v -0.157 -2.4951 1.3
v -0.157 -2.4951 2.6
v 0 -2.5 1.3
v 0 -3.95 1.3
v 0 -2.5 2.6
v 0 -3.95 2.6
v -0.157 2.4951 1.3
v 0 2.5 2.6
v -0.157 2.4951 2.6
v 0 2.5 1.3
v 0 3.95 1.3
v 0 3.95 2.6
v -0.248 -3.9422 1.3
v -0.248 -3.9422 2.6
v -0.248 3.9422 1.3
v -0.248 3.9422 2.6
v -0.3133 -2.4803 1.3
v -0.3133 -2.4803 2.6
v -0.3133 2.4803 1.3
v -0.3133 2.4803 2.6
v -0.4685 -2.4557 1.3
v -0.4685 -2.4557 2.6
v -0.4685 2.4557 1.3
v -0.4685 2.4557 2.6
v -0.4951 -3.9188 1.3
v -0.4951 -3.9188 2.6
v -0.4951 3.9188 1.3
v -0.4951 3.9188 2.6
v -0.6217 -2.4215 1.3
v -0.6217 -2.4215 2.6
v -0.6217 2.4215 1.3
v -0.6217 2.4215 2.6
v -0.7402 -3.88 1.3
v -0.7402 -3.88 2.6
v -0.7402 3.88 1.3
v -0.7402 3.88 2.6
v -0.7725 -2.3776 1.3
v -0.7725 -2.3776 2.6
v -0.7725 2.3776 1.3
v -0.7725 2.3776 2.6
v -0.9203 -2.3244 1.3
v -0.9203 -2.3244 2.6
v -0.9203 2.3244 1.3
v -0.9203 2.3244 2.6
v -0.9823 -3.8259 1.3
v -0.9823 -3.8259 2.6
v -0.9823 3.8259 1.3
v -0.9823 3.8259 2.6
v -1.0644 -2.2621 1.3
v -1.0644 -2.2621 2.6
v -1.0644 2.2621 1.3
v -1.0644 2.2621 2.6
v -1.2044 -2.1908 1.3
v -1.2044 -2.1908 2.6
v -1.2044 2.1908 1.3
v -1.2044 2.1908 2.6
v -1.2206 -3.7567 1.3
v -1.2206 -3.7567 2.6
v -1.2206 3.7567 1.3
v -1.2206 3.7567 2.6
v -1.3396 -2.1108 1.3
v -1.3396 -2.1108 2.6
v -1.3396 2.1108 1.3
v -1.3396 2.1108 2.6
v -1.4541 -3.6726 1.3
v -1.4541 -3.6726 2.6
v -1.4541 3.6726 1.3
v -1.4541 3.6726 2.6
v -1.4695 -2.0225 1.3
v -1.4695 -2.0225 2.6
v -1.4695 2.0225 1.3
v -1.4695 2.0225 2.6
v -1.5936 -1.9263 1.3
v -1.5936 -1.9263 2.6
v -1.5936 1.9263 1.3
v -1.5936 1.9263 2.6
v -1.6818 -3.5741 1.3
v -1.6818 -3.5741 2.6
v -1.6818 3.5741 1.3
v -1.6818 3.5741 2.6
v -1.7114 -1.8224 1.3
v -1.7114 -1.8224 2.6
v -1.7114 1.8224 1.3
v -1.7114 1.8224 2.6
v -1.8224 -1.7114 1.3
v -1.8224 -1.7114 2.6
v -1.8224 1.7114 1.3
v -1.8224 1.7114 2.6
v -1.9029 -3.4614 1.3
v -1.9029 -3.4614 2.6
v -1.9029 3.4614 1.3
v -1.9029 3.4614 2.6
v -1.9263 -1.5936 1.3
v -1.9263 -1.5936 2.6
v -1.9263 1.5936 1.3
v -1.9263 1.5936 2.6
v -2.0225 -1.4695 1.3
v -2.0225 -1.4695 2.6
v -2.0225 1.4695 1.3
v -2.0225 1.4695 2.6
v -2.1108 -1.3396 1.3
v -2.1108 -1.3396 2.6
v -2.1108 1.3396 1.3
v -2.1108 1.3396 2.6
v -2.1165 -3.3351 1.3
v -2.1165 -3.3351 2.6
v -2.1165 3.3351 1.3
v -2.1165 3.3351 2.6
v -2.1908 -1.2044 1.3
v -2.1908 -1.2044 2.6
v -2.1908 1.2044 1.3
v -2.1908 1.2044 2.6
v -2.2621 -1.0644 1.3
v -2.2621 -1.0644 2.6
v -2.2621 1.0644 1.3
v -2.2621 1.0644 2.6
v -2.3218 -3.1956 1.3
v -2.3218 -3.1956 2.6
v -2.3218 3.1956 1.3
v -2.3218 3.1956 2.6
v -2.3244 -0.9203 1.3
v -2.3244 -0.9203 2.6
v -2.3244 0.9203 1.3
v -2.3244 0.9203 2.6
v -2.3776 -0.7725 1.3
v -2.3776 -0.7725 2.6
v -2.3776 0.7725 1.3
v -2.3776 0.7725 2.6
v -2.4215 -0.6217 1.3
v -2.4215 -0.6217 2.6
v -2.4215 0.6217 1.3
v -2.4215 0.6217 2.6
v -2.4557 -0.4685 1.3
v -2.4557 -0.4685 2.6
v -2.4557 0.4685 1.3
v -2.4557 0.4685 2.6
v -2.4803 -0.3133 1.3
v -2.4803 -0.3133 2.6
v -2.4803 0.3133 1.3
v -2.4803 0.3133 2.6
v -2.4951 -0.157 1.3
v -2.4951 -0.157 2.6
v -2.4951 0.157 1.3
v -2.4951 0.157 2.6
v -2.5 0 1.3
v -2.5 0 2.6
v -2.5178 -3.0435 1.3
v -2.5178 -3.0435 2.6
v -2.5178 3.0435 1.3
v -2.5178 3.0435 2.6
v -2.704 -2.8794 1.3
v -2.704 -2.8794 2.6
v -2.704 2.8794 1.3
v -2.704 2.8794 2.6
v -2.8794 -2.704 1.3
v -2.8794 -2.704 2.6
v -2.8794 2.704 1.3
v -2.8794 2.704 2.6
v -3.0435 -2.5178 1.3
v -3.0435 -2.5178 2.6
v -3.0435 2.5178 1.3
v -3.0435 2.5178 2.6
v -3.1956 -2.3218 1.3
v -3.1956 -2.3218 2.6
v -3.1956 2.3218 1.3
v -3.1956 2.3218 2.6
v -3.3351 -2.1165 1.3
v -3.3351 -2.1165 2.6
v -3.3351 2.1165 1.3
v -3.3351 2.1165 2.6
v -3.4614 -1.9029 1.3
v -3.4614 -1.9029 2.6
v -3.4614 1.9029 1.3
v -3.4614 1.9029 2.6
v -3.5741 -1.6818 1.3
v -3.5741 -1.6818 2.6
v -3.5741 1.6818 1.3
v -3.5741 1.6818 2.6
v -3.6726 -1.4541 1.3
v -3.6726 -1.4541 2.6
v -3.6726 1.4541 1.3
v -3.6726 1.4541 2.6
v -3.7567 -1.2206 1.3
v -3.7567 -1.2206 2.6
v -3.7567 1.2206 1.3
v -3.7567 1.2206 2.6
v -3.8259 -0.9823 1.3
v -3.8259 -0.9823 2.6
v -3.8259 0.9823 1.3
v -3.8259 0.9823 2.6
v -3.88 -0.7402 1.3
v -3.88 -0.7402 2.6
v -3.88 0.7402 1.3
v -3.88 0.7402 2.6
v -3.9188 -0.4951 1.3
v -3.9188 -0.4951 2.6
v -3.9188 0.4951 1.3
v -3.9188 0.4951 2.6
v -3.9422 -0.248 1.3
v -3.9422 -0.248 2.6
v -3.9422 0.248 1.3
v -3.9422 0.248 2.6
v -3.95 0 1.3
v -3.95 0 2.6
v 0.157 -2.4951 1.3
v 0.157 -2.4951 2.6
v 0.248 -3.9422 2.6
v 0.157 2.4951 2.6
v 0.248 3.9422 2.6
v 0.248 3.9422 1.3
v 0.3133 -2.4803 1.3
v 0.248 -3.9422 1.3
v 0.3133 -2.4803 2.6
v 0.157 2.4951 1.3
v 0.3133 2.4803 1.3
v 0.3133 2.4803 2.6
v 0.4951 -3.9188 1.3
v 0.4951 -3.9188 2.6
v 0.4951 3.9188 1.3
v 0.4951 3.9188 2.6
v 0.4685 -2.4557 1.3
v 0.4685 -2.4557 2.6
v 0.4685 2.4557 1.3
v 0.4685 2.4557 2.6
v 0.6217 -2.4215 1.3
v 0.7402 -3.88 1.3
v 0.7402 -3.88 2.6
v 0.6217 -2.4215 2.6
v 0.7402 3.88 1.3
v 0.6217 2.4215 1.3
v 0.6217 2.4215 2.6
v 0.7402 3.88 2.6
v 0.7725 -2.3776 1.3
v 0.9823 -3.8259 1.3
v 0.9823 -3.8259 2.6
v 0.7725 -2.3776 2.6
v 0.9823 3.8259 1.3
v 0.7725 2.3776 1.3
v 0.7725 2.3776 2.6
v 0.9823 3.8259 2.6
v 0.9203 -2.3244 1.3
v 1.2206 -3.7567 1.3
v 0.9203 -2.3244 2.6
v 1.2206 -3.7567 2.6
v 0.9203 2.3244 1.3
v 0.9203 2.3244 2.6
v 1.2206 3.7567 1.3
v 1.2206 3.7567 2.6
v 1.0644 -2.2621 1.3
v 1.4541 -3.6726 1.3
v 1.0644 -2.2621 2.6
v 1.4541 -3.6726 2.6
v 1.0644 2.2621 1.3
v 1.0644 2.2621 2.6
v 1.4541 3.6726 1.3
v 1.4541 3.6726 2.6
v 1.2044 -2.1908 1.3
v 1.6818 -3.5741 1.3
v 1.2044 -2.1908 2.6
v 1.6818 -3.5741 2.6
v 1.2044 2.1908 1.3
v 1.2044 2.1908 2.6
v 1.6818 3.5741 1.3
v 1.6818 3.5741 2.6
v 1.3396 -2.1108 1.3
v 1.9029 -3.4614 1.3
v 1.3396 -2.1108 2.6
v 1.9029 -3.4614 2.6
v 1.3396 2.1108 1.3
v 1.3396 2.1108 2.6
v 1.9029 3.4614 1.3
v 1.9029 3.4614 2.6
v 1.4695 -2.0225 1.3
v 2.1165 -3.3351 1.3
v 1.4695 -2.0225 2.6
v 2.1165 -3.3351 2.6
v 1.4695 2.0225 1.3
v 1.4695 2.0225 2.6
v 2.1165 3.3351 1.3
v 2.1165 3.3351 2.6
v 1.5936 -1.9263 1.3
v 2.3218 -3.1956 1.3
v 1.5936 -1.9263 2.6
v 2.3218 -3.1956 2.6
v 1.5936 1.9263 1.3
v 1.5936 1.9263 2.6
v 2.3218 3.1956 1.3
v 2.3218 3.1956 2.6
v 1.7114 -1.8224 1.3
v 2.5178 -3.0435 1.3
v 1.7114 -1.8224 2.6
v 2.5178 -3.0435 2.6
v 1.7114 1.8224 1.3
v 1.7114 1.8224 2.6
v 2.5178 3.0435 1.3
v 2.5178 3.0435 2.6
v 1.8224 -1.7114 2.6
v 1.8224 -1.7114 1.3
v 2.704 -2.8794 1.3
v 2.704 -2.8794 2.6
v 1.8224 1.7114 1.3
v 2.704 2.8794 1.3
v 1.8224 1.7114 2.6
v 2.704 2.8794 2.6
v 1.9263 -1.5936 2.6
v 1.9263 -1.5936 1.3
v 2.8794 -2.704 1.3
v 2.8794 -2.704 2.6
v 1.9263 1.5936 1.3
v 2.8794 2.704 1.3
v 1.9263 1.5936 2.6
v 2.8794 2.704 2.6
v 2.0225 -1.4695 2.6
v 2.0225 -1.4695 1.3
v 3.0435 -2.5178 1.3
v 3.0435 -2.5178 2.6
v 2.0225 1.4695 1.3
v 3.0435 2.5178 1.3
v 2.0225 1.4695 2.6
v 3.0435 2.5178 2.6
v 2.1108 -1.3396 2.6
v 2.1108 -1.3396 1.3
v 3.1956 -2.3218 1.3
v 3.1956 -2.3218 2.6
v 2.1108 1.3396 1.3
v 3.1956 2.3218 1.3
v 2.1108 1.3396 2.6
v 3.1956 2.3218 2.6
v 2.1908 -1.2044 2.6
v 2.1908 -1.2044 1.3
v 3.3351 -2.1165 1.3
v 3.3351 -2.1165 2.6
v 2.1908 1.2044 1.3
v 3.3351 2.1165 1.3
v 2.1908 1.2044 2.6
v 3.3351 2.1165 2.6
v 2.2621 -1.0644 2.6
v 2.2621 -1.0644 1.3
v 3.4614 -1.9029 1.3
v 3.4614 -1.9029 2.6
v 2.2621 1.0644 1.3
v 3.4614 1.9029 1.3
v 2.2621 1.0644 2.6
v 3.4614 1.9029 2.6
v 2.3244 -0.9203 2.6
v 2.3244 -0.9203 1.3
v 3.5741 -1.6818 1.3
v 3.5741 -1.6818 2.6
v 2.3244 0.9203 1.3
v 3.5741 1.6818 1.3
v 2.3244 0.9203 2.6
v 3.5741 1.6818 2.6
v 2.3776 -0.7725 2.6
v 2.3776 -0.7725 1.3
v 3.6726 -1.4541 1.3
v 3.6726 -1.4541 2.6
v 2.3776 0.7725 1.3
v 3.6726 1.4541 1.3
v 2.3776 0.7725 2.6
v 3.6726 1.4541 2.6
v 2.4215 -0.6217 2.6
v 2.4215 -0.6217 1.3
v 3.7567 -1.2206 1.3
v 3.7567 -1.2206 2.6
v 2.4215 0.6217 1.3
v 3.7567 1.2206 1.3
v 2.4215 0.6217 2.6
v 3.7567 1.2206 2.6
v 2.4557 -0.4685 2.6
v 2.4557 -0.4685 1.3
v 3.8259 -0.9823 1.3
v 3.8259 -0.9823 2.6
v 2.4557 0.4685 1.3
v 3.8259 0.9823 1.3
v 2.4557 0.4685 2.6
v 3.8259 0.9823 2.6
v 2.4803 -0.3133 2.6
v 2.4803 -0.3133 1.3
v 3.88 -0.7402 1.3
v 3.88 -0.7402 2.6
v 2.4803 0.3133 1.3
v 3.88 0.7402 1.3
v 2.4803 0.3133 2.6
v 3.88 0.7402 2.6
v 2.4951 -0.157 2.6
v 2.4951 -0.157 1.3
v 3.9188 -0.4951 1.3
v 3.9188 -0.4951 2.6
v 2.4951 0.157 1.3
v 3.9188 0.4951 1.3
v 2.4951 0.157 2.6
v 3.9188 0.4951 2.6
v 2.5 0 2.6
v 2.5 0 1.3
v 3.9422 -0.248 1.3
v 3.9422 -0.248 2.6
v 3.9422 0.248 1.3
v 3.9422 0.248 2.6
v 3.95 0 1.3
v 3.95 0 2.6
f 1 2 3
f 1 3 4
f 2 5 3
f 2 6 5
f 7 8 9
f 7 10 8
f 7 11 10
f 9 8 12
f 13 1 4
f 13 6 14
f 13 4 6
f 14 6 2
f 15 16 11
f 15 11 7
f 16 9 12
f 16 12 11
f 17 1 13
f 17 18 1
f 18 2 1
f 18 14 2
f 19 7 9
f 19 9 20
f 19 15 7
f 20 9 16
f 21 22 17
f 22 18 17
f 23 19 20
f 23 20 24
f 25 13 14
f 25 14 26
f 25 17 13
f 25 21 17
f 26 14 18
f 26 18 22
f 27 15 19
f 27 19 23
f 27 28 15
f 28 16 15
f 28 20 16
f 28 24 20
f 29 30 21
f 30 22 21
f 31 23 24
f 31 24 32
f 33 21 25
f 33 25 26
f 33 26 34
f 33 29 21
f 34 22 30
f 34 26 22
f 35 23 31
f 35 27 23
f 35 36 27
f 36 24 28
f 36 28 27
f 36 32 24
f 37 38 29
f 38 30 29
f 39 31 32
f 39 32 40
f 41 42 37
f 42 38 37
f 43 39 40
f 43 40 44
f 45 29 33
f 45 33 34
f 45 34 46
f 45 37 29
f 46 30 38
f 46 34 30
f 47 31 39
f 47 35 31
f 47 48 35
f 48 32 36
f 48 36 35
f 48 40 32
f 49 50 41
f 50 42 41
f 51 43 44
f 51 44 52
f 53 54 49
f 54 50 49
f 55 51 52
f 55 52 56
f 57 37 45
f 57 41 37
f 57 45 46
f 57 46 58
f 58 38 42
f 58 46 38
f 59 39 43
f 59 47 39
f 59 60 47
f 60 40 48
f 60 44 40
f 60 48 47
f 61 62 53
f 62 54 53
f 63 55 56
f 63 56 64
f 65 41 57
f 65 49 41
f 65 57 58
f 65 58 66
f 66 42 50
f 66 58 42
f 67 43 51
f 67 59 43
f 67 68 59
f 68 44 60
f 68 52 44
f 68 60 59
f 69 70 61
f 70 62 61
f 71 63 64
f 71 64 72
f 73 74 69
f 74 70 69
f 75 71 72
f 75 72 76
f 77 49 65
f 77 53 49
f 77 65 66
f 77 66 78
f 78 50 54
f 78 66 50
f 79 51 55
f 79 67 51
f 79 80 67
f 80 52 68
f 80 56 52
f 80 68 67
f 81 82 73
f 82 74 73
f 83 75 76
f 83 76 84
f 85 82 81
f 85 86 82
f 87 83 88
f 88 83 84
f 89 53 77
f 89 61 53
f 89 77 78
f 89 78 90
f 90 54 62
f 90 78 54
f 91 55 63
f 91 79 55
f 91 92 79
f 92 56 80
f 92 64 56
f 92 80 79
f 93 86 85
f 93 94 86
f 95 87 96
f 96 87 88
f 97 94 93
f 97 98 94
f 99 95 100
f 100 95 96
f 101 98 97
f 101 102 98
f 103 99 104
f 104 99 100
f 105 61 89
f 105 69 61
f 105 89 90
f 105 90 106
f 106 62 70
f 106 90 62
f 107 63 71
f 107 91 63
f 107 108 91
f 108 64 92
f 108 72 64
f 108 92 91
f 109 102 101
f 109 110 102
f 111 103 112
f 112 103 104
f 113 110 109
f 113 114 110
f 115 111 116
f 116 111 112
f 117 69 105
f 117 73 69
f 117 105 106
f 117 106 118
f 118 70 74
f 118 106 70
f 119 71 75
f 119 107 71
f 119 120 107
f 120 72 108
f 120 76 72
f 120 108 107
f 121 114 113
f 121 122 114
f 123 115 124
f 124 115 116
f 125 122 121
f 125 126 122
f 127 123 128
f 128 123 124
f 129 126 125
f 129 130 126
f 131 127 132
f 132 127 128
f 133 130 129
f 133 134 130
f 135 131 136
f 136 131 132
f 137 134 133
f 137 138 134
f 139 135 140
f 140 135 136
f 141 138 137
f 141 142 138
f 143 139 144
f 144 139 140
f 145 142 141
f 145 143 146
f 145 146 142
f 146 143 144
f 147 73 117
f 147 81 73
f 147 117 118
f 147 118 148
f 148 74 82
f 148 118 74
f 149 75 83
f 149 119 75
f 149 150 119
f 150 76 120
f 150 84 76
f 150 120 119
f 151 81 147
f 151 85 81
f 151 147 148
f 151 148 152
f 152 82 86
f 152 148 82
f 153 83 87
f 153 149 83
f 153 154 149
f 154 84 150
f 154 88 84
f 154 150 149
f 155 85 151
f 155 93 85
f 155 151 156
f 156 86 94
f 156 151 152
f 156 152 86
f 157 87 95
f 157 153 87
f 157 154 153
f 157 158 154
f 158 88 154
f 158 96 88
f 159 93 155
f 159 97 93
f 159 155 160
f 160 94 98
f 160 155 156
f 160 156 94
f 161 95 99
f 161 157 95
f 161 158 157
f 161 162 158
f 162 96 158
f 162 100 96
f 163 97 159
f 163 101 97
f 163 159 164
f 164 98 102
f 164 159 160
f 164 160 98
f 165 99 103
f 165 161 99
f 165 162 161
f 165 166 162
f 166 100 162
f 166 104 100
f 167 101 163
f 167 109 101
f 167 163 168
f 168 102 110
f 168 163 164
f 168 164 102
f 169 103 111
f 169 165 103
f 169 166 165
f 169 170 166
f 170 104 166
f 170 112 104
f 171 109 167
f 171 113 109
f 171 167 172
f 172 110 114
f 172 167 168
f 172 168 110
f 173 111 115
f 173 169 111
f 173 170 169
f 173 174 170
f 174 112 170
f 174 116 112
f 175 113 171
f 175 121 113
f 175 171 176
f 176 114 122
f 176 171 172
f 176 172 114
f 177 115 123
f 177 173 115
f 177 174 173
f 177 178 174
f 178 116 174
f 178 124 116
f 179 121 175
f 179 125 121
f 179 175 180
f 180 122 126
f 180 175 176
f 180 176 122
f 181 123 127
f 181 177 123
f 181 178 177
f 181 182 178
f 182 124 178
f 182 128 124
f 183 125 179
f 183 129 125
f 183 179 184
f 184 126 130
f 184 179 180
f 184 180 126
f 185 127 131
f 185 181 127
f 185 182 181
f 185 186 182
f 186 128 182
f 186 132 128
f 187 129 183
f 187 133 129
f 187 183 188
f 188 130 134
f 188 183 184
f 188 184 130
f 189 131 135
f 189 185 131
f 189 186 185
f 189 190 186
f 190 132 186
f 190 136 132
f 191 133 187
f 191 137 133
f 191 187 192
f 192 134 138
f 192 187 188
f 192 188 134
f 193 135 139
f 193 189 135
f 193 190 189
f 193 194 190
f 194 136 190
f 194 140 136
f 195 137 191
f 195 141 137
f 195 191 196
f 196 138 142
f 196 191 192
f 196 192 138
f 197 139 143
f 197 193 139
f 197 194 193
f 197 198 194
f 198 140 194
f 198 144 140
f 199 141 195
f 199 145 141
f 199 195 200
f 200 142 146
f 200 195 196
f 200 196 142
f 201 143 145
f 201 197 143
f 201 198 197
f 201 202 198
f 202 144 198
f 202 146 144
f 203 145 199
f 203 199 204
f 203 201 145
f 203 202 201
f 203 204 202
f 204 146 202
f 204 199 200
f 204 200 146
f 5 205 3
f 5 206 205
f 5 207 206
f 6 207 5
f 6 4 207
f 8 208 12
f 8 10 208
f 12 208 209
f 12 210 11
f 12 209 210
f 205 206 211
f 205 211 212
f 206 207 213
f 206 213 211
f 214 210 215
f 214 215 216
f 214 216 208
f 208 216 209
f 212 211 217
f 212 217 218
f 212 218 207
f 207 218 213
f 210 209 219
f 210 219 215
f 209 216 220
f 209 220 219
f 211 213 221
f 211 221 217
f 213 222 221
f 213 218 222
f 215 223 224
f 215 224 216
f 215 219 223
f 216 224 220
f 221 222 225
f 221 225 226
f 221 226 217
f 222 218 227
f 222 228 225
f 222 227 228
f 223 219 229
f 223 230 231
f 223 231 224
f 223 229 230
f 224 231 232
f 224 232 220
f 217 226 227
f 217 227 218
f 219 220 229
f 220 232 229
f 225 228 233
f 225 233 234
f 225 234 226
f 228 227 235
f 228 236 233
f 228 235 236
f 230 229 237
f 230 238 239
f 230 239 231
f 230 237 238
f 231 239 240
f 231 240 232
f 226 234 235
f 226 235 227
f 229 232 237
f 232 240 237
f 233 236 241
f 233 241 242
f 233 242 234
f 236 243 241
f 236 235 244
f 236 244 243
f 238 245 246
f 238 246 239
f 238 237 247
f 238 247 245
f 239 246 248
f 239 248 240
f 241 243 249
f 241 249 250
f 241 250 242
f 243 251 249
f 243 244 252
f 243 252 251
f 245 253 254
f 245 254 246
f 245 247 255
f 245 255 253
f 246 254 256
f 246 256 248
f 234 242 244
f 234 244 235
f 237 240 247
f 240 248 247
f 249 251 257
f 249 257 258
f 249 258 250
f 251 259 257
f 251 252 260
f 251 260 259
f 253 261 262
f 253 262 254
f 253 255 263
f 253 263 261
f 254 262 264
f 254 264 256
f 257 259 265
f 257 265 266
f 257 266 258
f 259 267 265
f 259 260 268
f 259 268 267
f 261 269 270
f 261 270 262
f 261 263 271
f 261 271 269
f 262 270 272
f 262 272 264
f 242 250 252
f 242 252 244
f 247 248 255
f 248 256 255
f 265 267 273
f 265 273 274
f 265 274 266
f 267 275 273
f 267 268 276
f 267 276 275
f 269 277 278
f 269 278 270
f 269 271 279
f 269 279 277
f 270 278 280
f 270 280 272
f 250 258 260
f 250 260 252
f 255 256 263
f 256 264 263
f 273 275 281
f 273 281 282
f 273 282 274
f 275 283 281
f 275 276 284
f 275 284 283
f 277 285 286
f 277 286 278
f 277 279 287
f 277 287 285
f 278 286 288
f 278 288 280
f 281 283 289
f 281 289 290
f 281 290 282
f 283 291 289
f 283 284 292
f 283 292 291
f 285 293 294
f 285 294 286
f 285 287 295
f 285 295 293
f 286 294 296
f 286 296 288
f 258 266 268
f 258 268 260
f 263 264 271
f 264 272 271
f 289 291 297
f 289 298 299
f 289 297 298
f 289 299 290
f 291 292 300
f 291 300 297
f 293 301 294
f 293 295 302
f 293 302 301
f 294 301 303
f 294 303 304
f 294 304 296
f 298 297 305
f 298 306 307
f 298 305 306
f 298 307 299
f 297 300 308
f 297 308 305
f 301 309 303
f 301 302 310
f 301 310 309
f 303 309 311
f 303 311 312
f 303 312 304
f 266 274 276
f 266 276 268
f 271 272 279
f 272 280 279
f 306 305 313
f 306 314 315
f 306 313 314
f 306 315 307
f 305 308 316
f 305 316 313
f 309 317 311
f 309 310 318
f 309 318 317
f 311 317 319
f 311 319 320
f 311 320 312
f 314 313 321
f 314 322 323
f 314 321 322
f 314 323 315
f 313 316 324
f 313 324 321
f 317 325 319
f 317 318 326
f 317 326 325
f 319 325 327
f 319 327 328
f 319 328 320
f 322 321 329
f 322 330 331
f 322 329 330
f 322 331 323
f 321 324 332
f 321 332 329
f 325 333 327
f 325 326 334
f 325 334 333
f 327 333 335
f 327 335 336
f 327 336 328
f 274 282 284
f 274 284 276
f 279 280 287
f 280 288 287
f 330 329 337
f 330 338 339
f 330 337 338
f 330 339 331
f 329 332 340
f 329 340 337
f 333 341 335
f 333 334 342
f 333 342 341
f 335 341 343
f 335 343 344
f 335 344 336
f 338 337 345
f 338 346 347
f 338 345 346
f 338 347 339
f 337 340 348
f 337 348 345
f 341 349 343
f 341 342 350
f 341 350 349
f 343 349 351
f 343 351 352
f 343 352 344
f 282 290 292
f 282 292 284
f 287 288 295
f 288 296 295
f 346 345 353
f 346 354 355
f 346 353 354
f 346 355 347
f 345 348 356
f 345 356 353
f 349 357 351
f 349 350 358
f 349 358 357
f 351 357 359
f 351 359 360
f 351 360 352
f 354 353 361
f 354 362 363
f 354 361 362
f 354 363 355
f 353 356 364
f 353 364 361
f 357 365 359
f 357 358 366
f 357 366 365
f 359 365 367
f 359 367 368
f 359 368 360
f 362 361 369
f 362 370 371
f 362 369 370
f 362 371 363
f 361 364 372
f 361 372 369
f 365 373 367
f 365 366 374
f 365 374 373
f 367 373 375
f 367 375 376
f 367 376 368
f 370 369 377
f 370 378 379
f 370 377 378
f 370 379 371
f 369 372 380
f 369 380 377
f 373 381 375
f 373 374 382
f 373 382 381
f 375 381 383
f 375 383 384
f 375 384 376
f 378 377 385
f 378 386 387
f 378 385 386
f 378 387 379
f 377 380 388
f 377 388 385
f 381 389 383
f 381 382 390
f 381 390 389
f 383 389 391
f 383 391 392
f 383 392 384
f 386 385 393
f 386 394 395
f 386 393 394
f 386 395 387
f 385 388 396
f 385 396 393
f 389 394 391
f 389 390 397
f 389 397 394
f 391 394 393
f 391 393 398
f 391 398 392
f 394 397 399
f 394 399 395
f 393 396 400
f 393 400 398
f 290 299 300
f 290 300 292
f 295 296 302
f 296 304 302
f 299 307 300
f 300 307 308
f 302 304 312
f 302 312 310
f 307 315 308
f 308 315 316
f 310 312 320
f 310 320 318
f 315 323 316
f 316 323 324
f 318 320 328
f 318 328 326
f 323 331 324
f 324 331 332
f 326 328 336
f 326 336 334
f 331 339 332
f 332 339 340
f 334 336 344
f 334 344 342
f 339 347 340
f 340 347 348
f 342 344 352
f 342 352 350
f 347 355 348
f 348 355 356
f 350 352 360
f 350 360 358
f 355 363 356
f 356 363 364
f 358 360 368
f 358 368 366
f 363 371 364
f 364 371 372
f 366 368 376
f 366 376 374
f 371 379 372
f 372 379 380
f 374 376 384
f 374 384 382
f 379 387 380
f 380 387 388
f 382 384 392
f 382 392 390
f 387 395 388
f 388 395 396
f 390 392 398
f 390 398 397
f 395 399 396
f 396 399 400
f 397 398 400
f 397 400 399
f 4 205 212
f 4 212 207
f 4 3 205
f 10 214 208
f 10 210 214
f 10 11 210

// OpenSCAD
// file: ../src/WINDGAUGE02A_R04.scad
$fn=40; // model faces resolution.
include <../configuration.scad>

//podložka u ložiska - nahrazena kovovou
module WINDGAUGE02A_R04 ()
    {
    difference()
        {
        union()
            {
            translate([0,0,0])
                cylinder (h = S01_sila_materialu, r=(lozisko_prumer_vnitrni+2*lozisko_prekryv)/2, center = true, $fn=100); 
            }    
   
        translate([0,0,1/2*S01_sila_materialu-(lozisko_vyska)/2])             
            cylinder (h = 2*S01_sila_materialu+lozisko_vyska+0.1, r=((prumer_osicky)/2), center = true, $fn=100);   
        }
    }
 
 WINDGAUGE02A_R04 ();
// file: ../configuration.scad
$fn=40; // model faces resolution.

//OBECNE PARAMETRY 
//----------------------------------------------------------------
//----------------------------------------------------------------
//WINDGAUGE02A_S02 - Parametry pro hlavni valec anemometru
S01_hloubka_zavitu=4;
S01_vyska=80;
S01_prumer_vnitrni=40;
S01_sila_materialu=1.3;
S01_vyska_horni_zavit=10;
S01_vyska_spodniho_zavitu=10;
S01_sila_drzaku_RJ11=3; //vyška drážky
S01_hrana_A_RJ11=12.3;
S01_hrana_B_RJ11=19;
S01_tolerance_zavit=1.5;

//Obecné parametry
prumer_osicky=5;
sterbina_na_osicku=0.5; //aby nepraskal a držel držák rotoru na hřídelce

//Rozmery modulu se senzorem
senzor_delka=20.32;
senzor_sirka=10.16;
senzor_vyska_IO=2;
senzor_odstup_od_magnetu=2;

//Parametry loziska
lozisko_prumer_vnitrni=4.9;
lozisko_prumer_vnejsi=16.1;
lozisko_vyska=5;
lozisko_prekryv=1.5;

//Parametry magnetu
magnet_prumer=6.3;
magnet_vyska=5;
magnet_zapusteni=4;
magnet_tolerance_prumeru=0.2;

R03_vyska_narezeni_hridelky=5;

//Parametry sroubu
prumer_sroubu=3.4;
prumer_hlavy_sroubu=6;
vyska_hlavy_sroubu=4;
vyska_matky=3;
sirka_matky=6.7;

sirka_matky_tol=0.175;
prumer_orechu=10;

//WINDGAUGE02A_R01 //pro lopatku
L01_hrana_drzaku_a=10;
L01_hrana_drzaku_b=3;
L01_delka_uchytu=6;
L01_prumer_lopatky=40;
L01_sila_materialu_lopatky=1.2;

//WINDGAUGE02A_D01 //uchyt velky
D01_material_pod_zavitem=5;
D01_material_za_zavitem=3;
D01_material_pred_zavitem=2;
D01_delka_tyce=60;
D01_sirka_tyce=10;

//WINDGAUGE02A_D02 //uchyt na sloup
D02_sila_materialu=6;
D02_vyska_uchytky=40;
D02_prumer_obruby=27; 

//27mm - 3/4 trubka
D02_delka_celeho_uchytu=60;
D02_dotahova_vzdalenost=1.5;
D02_prumer_uchytneho_sroubu=4.2;
D02_sirka_matky=9.1; //pro M4
D02_vyska_matky=3;

//WINDGAUGE02A_R01 //rotor s prekritim statoru
R01_vyska_preryti_statoru=10;
R01_sila_materialu_pro_prekriti=1.3;
R01_mezera_mezi_statorem_rotorem=3;

//WINDGAUGE02A_R03 //drzak magnetu
R05_sirka_matky=10;
// main file
include <../configuration.scad>

$fn=100; // model faces resolution.

use <../src/WINDGAUGE02A_R04.scad>

//neni potřeba
    translate([0,0,3/2*S01_sila_materialu])
        rotate([0,180, 0])
            WINDGAUGE02A_R04 ();   
